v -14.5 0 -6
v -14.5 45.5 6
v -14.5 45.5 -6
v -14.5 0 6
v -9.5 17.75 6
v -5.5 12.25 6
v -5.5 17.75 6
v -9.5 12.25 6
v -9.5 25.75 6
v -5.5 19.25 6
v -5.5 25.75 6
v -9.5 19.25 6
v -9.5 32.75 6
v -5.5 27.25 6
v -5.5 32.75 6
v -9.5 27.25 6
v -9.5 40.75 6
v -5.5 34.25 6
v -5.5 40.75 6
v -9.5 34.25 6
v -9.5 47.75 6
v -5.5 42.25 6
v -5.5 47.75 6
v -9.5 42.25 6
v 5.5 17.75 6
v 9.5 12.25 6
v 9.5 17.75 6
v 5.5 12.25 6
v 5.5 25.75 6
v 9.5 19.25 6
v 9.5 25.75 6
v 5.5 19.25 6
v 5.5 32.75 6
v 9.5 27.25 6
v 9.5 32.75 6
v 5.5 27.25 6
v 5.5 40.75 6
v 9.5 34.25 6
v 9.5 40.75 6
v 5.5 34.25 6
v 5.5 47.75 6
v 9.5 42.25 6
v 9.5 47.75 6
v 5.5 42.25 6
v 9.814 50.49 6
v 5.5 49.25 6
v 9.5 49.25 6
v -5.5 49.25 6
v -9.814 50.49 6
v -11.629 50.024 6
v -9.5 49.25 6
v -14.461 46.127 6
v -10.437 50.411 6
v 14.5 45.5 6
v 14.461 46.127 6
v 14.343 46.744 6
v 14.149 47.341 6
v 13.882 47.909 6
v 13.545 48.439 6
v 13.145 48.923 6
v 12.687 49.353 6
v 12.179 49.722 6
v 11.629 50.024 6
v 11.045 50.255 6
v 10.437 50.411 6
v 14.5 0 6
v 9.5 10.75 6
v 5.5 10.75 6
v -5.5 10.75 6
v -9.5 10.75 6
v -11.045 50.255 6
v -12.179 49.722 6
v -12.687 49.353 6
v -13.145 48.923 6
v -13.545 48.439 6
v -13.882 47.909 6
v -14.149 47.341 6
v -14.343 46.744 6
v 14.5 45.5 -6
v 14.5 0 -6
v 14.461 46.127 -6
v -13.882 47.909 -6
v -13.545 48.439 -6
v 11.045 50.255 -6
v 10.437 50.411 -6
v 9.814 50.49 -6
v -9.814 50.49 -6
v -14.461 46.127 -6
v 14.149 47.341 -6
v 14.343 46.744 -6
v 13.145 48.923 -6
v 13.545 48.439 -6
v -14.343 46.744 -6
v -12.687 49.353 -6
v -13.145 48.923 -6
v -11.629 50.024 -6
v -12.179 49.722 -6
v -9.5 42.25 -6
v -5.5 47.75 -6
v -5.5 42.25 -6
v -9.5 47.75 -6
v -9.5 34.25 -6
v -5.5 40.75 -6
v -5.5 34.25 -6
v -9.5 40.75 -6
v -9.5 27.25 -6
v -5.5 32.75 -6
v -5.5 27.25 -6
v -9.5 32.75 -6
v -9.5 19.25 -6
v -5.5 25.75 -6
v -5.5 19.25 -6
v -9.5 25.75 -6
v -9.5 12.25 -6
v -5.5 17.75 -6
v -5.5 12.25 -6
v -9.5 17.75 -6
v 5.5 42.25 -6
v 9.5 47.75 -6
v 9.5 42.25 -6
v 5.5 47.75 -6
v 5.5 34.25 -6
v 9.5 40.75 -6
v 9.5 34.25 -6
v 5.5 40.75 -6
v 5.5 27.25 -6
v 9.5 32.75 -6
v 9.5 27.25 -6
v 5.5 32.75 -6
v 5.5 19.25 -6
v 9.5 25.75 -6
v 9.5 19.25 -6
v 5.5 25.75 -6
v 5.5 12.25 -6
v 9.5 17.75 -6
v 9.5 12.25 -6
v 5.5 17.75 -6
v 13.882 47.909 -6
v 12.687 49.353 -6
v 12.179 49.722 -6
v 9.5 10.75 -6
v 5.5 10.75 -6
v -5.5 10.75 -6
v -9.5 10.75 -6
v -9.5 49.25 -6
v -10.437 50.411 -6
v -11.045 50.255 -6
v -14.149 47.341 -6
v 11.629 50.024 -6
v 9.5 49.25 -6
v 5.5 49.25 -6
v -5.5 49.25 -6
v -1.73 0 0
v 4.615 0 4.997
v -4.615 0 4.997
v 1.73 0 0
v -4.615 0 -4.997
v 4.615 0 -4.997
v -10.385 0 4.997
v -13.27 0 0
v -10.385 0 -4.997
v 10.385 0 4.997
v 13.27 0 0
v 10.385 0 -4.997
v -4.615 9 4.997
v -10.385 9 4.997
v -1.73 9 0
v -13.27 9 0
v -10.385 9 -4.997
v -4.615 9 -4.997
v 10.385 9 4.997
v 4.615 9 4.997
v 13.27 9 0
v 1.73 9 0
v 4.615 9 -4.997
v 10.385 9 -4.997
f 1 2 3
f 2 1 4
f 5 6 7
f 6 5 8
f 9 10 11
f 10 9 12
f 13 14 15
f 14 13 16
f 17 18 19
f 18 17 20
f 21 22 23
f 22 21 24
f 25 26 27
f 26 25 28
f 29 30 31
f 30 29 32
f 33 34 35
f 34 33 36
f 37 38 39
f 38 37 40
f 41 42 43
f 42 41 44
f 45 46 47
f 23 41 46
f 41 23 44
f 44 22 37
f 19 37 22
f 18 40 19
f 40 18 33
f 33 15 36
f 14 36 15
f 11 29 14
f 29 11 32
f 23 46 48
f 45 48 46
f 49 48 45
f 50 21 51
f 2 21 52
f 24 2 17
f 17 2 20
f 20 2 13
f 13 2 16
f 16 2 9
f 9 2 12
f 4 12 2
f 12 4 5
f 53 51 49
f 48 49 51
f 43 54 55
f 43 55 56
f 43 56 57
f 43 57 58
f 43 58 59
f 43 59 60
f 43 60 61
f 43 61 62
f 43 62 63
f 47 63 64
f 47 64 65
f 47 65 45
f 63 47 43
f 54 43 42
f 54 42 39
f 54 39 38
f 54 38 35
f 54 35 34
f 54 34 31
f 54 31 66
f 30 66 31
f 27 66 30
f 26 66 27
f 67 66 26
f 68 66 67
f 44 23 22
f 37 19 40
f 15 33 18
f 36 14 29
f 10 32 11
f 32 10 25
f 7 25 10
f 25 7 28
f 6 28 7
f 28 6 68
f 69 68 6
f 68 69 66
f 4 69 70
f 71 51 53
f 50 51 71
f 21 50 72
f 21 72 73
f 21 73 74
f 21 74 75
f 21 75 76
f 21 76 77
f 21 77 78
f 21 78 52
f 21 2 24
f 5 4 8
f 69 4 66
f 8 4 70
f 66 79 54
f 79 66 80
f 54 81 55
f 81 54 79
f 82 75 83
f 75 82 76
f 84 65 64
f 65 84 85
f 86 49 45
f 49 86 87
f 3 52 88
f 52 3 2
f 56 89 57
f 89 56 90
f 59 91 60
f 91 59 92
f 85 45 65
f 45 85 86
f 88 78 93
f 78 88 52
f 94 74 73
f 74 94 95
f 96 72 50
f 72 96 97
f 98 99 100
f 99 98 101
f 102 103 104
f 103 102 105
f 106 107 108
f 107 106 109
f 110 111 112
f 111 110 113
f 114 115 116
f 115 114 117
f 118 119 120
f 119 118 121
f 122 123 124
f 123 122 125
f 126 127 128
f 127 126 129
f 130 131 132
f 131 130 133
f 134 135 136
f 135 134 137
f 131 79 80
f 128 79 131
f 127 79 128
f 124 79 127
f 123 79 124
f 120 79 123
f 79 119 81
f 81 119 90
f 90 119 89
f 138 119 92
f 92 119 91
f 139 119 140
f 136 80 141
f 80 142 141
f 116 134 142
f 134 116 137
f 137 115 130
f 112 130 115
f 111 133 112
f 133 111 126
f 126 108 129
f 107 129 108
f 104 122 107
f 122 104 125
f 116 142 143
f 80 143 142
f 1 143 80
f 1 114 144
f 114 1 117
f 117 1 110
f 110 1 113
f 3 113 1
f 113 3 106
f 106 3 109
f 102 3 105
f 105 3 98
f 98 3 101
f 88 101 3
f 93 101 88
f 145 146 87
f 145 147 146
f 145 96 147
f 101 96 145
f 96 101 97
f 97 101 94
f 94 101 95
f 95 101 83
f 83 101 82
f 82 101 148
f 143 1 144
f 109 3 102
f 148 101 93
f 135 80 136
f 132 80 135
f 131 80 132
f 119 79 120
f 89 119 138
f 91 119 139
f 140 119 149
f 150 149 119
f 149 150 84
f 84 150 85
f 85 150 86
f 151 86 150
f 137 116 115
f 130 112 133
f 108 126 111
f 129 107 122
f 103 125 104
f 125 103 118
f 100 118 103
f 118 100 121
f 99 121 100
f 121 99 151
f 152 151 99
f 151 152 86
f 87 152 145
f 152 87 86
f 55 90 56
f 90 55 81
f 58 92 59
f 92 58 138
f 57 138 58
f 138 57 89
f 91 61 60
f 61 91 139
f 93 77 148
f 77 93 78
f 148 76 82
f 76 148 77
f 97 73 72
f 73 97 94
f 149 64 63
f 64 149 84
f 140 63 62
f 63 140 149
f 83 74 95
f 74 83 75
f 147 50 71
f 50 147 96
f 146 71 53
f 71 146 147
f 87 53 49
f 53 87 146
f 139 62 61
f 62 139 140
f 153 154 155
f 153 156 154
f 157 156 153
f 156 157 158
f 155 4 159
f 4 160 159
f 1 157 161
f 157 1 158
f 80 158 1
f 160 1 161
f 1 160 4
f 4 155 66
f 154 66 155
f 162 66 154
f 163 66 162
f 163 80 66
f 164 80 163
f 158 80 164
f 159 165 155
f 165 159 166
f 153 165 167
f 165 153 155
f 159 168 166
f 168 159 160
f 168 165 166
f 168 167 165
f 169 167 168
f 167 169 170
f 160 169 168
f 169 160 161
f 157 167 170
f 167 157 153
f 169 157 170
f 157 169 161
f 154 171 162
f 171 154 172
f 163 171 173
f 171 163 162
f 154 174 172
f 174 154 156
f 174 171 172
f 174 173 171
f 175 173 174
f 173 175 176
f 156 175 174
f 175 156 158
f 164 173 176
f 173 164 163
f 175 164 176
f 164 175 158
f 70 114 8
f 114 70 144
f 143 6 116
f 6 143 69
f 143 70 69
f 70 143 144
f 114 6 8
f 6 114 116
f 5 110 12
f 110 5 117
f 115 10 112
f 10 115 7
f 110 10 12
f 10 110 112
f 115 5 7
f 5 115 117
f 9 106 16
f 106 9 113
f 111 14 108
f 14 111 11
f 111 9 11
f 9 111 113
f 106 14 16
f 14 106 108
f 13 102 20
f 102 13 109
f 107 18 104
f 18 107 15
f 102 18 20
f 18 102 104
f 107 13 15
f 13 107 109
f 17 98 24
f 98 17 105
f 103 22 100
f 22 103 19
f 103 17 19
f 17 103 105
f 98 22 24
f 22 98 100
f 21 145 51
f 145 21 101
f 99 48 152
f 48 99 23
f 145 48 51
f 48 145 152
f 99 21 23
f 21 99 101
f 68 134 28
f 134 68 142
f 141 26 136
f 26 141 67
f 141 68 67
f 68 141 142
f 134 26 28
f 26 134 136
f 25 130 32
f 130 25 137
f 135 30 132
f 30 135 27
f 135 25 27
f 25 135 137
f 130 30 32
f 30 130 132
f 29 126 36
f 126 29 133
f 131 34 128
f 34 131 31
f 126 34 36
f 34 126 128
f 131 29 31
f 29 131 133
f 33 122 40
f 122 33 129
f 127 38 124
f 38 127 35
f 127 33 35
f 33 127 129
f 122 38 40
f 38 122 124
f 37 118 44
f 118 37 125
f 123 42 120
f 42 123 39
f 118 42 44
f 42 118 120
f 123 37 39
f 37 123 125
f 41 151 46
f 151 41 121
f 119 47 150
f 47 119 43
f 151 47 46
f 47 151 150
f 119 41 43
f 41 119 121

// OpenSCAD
$fn = 50;


difference() {
	union() {
		translate(v = [0, 28.5000000000, -6.0000000000]) {
			hull() {
				translate(v = [-9.5000000000, 17.0000000000, 0]) {
					cylinder(h = 12, r = 5);
				}
				translate(v = [9.5000000000, 17.0000000000, 0]) {
					cylinder(h = 12, r = 5);
				}
				translate(v = [-9.5000000000, -17.0000000000, 0]) {
					cylinder(h = 12, r = 5);
				}
				translate(v = [9.5000000000, -17.0000000000, 0]) {
					cylinder(h = 12, r = 5);
				}
			}
		}
		translate(v = [0, 28.5000000000, -6.0000000000]) {
			hull() {
				translate(v = [-9.5000000000, 17.0000000000, 0]) {
					cylinder(h = 12, r = 5);
				}
				translate(v = [9.5000000000, 17.0000000000, 0]) {
					cylinder(h = 12, r = 5);
				}
				translate(v = [-9.5000000000, -17.0000000000, 0]) {
					cylinder(h = 12, r = 5);
				}
				translate(v = [9.5000000000, -17.0000000000, 0]) {
					cylinder(h = 12, r = 5);
				}
			}
		}
		translate(v = [-14.5000000000, 0, -6.0000000000]) {
			cube(size = [29, 13.5000000000, 12]);
		}
	}
	union() {
		translate(v = [-7.5000000000, 9, 0]) {
			rotate(a = [0, 0, 0]) {
				difference() {
					union() {
						rotate(a = [90, 0, 0]) {
							linear_extrude(height = 13.5000000000) {
								polygon(points = [[5.7700000000, 0.0000000000], [2.8850000000, 4.9969665798], [-2.8850000000, 4.9969665798], [-5.7700000000, 0.0000000000], [-2.8850000000, -4.9969665798], [2.8850000000, -4.9969665798]]);
							}
						}
					}
					union();
				}
			}
		}
		translate(v = [7.5000000000, 9, 0]) {
			rotate(a = [0, 0, 0]) {
				difference() {
					union() {
						rotate(a = [90, 0, 0]) {
							linear_extrude(height = 13.5000000000) {
								polygon(points = [[5.7700000000, 0.0000000000], [2.8850000000, 4.9969665798], [-2.8850000000, 4.9969665798], [-5.7700000000, 0.0000000000], [-2.8850000000, -4.9969665798], [2.8850000000, -4.9969665798]]);
							}
						}
					}
					union();
				}
			}
		}
		translate(v = [-9.5000000000, 10.7500000000, -50]) {
			cube(size = [4, 1.5000000000, 100]);
		}
		translate(v = [-9.5000000000, 17.7500000000, -50]) {
			cube(size = [4, 1.5000000000, 100]);
		}
		translate(v = [-9.5000000000, 25.7500000000, -50]) {
			cube(size = [4, 1.5000000000, 100]);
		}
		translate(v = [-9.5000000000, 32.7500000000, -50]) {
			cube(size = [4, 1.5000000000, 100]);
		}
		translate(v = [-9.5000000000, 40.7500000000, -50]) {
			cube(size = [4, 1.5000000000, 100]);
		}
		translate(v = [-9.5000000000, 47.7500000000, -50]) {
			cube(size = [4, 1.5000000000, 100]);
		}
		translate(v = [-7.5000000000, 8, 0]) {
			rotate(a = [90, 0, 0]) {
				cylinder(h = 8, r = 3.0000000000);
			}
		}
		translate(v = [5.5000000000, 10.7500000000, -50]) {
			cube(size = [4, 1.5000000000, 100]);
		}
		translate(v = [5.5000000000, 17.7500000000, -50]) {
			cube(size = [4, 1.5000000000, 100]);
		}
		translate(v = [5.5000000000, 25.7500000000, -50]) {
			cube(size = [4, 1.5000000000, 100]);
		}
		translate(v = [5.5000000000, 32.7500000000, -50]) {
			cube(size = [4, 1.5000000000, 100]);
		}
		translate(v = [5.5000000000, 40.7500000000, -50]) {
			cube(size = [4, 1.5000000000, 100]);
		}
		translate(v = [5.5000000000, 47.7500000000, -50]) {
			cube(size = [4, 1.5000000000, 100]);
		}
		translate(v = [7.5000000000, 8, 0]) {
			rotate(a = [90, 0, 0]) {
				cylinder(h = 8, r = 3.0000000000);
			}
		}
	}
}
